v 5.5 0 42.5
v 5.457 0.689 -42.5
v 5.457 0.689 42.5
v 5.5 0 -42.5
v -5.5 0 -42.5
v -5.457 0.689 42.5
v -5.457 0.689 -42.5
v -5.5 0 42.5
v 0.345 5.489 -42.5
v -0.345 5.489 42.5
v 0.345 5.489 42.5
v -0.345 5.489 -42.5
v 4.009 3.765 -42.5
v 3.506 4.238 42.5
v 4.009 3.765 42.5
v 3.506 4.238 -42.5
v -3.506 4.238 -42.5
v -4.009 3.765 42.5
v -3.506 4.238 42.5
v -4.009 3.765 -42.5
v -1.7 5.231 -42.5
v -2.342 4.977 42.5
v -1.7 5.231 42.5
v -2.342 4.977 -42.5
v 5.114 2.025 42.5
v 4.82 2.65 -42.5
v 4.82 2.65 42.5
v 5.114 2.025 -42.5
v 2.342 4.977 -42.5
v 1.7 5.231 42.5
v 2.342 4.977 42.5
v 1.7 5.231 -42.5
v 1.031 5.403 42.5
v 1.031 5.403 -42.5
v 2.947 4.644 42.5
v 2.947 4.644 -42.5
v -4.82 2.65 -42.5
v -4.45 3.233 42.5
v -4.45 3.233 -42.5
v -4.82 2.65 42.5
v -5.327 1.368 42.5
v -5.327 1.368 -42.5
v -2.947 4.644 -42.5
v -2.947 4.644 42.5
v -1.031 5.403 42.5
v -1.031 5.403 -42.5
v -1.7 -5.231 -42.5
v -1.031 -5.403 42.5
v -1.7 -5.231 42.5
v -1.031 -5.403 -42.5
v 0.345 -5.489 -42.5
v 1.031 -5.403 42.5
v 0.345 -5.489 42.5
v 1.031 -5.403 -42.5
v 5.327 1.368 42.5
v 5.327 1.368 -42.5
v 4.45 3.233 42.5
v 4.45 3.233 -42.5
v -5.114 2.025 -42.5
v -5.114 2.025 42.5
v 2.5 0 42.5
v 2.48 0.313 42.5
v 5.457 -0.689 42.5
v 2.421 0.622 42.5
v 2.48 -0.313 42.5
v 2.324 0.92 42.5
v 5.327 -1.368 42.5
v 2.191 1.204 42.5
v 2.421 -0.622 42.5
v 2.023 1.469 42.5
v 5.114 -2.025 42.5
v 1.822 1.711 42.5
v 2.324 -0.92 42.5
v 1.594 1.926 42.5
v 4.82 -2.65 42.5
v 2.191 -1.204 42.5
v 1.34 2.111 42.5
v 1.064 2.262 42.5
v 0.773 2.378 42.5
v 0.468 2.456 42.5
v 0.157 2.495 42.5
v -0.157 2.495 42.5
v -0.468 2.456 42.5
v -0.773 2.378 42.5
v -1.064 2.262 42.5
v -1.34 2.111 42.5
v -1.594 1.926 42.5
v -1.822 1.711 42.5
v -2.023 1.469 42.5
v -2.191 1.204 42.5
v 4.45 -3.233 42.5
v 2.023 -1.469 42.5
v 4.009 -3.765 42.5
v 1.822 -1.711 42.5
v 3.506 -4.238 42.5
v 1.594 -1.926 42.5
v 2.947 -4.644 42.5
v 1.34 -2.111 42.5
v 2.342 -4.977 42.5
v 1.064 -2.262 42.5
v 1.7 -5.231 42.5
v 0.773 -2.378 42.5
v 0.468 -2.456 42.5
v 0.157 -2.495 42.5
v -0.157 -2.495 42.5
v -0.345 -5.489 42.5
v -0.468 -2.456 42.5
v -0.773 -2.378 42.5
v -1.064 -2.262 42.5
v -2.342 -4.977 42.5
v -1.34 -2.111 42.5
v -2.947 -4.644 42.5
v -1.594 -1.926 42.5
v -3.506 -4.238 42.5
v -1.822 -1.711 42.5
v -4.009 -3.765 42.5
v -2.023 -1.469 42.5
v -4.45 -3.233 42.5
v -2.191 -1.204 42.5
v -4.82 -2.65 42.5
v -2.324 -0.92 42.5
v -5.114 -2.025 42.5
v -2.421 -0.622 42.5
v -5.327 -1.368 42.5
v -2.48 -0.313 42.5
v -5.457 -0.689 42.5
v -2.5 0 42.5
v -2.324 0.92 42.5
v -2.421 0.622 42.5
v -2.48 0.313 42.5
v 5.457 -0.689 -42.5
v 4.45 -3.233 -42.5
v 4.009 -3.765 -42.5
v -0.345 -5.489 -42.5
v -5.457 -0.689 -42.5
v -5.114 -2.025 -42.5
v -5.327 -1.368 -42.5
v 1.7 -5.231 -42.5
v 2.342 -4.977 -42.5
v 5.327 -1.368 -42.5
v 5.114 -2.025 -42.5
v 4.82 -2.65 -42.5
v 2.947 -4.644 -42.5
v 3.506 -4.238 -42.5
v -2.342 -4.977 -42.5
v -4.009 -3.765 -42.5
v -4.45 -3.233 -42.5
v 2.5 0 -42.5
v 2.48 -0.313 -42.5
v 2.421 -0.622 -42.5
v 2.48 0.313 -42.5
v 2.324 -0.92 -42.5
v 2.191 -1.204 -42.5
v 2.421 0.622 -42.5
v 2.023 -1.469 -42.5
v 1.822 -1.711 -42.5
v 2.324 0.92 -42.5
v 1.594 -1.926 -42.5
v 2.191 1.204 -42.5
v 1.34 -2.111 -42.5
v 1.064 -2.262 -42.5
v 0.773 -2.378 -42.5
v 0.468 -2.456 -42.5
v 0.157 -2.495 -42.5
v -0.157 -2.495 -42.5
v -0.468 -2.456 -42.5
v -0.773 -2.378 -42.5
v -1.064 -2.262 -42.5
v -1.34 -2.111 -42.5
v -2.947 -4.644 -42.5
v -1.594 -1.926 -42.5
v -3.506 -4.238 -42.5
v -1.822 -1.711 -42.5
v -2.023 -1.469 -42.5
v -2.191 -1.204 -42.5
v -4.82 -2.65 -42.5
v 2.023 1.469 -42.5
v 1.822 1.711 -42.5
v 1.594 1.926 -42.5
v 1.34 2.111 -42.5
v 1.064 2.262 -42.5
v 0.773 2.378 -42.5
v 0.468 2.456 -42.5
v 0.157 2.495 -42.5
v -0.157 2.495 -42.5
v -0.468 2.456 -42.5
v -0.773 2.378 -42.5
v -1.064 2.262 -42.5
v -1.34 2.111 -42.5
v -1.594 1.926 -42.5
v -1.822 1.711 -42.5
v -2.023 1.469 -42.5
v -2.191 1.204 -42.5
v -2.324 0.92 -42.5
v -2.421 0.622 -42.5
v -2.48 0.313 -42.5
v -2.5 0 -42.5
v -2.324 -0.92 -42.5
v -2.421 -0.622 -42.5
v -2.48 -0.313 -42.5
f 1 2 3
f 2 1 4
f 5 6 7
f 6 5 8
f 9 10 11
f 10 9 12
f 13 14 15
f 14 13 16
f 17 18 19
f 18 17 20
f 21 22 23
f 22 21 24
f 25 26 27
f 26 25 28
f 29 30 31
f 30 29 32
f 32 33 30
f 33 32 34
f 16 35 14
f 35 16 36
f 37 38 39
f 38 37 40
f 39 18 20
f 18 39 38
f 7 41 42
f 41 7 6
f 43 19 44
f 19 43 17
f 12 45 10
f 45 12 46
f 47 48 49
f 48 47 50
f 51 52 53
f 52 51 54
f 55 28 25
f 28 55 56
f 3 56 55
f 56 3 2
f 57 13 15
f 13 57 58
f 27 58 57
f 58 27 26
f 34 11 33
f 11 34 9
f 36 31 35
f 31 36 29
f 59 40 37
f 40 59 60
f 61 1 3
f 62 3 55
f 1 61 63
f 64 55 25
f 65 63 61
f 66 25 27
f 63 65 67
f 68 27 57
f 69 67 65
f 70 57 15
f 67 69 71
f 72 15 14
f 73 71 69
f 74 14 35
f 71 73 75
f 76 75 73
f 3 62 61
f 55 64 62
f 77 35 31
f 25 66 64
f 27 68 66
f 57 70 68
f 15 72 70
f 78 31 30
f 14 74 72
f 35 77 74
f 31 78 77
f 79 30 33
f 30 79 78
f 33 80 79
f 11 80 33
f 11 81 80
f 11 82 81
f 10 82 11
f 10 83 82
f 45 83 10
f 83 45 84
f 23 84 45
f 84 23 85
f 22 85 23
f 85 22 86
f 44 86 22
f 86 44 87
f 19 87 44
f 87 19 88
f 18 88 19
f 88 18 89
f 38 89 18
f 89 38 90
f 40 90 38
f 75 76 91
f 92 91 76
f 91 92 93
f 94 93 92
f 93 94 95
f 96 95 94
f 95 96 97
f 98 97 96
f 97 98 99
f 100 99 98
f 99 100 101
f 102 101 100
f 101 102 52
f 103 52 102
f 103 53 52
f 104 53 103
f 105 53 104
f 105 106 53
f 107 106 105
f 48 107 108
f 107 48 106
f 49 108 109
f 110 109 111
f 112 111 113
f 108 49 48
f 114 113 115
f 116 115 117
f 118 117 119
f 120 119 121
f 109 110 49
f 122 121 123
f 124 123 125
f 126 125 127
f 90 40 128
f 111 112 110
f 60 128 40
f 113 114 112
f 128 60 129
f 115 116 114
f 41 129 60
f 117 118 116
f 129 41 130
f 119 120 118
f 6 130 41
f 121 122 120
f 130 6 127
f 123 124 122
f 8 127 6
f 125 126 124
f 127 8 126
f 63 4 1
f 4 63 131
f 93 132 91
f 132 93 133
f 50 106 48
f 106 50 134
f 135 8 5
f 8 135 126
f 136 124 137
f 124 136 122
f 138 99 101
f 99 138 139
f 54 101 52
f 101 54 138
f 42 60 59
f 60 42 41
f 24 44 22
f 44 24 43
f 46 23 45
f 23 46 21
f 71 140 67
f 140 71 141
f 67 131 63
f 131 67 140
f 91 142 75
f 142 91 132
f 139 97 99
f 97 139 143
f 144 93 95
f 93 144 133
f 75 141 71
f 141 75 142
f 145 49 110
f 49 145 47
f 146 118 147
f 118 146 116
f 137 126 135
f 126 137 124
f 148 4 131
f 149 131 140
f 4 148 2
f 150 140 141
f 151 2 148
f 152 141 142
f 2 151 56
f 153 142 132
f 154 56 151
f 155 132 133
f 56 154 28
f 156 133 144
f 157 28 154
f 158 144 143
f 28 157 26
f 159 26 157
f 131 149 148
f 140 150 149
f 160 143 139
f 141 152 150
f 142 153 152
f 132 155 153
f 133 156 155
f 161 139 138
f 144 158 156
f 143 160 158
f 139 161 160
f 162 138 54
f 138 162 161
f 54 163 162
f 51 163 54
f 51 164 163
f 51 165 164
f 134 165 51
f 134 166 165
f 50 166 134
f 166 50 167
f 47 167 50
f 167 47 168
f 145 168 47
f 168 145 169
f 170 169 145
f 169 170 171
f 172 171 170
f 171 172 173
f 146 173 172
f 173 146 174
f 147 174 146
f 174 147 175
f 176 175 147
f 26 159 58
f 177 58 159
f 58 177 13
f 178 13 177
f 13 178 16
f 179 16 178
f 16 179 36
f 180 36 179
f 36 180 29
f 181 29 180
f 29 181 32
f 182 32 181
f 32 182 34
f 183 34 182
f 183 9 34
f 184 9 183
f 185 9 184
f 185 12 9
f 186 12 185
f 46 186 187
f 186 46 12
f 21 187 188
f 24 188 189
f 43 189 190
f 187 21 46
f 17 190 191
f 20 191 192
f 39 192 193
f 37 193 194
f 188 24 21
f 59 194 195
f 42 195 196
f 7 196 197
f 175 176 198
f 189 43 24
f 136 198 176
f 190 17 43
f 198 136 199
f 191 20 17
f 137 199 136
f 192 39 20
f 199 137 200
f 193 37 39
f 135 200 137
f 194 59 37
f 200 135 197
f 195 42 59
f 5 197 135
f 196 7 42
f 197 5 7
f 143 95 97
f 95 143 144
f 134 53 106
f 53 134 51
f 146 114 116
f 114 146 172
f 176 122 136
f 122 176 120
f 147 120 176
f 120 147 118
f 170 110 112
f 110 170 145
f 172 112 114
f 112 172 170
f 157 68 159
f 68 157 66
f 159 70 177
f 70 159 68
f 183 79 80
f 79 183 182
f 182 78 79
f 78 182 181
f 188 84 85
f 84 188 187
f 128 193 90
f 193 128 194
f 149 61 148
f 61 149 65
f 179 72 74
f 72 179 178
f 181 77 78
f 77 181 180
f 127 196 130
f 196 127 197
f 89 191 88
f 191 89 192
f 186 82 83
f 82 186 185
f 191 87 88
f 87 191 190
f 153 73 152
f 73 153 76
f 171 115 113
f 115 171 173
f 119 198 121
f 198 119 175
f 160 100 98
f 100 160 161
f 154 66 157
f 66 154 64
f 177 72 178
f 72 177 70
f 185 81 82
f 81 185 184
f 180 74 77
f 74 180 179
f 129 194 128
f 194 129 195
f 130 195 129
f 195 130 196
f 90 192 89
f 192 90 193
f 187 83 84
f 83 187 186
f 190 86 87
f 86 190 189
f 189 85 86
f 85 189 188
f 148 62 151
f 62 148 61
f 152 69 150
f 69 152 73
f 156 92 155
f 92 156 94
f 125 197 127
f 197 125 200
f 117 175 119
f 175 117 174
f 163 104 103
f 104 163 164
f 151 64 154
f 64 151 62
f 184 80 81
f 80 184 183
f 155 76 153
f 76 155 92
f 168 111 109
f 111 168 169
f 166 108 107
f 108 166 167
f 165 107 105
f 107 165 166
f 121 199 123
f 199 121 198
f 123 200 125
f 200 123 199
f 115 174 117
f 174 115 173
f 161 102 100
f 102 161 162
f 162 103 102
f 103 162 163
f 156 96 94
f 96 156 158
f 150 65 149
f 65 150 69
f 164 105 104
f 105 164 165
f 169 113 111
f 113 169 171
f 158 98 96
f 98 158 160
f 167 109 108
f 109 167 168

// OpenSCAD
$fn = 50;


difference() {
	union() {
		translate(v = [0, 0, -42.5000000000]) {
			cylinder(h = 85, r = 5.5000000000);
		}
	}
	union() {
		translate(v = [0, 0, -100.0000000000]) {
			cylinder(h = 200, r = 2.5000000000);
		}
	}
}
